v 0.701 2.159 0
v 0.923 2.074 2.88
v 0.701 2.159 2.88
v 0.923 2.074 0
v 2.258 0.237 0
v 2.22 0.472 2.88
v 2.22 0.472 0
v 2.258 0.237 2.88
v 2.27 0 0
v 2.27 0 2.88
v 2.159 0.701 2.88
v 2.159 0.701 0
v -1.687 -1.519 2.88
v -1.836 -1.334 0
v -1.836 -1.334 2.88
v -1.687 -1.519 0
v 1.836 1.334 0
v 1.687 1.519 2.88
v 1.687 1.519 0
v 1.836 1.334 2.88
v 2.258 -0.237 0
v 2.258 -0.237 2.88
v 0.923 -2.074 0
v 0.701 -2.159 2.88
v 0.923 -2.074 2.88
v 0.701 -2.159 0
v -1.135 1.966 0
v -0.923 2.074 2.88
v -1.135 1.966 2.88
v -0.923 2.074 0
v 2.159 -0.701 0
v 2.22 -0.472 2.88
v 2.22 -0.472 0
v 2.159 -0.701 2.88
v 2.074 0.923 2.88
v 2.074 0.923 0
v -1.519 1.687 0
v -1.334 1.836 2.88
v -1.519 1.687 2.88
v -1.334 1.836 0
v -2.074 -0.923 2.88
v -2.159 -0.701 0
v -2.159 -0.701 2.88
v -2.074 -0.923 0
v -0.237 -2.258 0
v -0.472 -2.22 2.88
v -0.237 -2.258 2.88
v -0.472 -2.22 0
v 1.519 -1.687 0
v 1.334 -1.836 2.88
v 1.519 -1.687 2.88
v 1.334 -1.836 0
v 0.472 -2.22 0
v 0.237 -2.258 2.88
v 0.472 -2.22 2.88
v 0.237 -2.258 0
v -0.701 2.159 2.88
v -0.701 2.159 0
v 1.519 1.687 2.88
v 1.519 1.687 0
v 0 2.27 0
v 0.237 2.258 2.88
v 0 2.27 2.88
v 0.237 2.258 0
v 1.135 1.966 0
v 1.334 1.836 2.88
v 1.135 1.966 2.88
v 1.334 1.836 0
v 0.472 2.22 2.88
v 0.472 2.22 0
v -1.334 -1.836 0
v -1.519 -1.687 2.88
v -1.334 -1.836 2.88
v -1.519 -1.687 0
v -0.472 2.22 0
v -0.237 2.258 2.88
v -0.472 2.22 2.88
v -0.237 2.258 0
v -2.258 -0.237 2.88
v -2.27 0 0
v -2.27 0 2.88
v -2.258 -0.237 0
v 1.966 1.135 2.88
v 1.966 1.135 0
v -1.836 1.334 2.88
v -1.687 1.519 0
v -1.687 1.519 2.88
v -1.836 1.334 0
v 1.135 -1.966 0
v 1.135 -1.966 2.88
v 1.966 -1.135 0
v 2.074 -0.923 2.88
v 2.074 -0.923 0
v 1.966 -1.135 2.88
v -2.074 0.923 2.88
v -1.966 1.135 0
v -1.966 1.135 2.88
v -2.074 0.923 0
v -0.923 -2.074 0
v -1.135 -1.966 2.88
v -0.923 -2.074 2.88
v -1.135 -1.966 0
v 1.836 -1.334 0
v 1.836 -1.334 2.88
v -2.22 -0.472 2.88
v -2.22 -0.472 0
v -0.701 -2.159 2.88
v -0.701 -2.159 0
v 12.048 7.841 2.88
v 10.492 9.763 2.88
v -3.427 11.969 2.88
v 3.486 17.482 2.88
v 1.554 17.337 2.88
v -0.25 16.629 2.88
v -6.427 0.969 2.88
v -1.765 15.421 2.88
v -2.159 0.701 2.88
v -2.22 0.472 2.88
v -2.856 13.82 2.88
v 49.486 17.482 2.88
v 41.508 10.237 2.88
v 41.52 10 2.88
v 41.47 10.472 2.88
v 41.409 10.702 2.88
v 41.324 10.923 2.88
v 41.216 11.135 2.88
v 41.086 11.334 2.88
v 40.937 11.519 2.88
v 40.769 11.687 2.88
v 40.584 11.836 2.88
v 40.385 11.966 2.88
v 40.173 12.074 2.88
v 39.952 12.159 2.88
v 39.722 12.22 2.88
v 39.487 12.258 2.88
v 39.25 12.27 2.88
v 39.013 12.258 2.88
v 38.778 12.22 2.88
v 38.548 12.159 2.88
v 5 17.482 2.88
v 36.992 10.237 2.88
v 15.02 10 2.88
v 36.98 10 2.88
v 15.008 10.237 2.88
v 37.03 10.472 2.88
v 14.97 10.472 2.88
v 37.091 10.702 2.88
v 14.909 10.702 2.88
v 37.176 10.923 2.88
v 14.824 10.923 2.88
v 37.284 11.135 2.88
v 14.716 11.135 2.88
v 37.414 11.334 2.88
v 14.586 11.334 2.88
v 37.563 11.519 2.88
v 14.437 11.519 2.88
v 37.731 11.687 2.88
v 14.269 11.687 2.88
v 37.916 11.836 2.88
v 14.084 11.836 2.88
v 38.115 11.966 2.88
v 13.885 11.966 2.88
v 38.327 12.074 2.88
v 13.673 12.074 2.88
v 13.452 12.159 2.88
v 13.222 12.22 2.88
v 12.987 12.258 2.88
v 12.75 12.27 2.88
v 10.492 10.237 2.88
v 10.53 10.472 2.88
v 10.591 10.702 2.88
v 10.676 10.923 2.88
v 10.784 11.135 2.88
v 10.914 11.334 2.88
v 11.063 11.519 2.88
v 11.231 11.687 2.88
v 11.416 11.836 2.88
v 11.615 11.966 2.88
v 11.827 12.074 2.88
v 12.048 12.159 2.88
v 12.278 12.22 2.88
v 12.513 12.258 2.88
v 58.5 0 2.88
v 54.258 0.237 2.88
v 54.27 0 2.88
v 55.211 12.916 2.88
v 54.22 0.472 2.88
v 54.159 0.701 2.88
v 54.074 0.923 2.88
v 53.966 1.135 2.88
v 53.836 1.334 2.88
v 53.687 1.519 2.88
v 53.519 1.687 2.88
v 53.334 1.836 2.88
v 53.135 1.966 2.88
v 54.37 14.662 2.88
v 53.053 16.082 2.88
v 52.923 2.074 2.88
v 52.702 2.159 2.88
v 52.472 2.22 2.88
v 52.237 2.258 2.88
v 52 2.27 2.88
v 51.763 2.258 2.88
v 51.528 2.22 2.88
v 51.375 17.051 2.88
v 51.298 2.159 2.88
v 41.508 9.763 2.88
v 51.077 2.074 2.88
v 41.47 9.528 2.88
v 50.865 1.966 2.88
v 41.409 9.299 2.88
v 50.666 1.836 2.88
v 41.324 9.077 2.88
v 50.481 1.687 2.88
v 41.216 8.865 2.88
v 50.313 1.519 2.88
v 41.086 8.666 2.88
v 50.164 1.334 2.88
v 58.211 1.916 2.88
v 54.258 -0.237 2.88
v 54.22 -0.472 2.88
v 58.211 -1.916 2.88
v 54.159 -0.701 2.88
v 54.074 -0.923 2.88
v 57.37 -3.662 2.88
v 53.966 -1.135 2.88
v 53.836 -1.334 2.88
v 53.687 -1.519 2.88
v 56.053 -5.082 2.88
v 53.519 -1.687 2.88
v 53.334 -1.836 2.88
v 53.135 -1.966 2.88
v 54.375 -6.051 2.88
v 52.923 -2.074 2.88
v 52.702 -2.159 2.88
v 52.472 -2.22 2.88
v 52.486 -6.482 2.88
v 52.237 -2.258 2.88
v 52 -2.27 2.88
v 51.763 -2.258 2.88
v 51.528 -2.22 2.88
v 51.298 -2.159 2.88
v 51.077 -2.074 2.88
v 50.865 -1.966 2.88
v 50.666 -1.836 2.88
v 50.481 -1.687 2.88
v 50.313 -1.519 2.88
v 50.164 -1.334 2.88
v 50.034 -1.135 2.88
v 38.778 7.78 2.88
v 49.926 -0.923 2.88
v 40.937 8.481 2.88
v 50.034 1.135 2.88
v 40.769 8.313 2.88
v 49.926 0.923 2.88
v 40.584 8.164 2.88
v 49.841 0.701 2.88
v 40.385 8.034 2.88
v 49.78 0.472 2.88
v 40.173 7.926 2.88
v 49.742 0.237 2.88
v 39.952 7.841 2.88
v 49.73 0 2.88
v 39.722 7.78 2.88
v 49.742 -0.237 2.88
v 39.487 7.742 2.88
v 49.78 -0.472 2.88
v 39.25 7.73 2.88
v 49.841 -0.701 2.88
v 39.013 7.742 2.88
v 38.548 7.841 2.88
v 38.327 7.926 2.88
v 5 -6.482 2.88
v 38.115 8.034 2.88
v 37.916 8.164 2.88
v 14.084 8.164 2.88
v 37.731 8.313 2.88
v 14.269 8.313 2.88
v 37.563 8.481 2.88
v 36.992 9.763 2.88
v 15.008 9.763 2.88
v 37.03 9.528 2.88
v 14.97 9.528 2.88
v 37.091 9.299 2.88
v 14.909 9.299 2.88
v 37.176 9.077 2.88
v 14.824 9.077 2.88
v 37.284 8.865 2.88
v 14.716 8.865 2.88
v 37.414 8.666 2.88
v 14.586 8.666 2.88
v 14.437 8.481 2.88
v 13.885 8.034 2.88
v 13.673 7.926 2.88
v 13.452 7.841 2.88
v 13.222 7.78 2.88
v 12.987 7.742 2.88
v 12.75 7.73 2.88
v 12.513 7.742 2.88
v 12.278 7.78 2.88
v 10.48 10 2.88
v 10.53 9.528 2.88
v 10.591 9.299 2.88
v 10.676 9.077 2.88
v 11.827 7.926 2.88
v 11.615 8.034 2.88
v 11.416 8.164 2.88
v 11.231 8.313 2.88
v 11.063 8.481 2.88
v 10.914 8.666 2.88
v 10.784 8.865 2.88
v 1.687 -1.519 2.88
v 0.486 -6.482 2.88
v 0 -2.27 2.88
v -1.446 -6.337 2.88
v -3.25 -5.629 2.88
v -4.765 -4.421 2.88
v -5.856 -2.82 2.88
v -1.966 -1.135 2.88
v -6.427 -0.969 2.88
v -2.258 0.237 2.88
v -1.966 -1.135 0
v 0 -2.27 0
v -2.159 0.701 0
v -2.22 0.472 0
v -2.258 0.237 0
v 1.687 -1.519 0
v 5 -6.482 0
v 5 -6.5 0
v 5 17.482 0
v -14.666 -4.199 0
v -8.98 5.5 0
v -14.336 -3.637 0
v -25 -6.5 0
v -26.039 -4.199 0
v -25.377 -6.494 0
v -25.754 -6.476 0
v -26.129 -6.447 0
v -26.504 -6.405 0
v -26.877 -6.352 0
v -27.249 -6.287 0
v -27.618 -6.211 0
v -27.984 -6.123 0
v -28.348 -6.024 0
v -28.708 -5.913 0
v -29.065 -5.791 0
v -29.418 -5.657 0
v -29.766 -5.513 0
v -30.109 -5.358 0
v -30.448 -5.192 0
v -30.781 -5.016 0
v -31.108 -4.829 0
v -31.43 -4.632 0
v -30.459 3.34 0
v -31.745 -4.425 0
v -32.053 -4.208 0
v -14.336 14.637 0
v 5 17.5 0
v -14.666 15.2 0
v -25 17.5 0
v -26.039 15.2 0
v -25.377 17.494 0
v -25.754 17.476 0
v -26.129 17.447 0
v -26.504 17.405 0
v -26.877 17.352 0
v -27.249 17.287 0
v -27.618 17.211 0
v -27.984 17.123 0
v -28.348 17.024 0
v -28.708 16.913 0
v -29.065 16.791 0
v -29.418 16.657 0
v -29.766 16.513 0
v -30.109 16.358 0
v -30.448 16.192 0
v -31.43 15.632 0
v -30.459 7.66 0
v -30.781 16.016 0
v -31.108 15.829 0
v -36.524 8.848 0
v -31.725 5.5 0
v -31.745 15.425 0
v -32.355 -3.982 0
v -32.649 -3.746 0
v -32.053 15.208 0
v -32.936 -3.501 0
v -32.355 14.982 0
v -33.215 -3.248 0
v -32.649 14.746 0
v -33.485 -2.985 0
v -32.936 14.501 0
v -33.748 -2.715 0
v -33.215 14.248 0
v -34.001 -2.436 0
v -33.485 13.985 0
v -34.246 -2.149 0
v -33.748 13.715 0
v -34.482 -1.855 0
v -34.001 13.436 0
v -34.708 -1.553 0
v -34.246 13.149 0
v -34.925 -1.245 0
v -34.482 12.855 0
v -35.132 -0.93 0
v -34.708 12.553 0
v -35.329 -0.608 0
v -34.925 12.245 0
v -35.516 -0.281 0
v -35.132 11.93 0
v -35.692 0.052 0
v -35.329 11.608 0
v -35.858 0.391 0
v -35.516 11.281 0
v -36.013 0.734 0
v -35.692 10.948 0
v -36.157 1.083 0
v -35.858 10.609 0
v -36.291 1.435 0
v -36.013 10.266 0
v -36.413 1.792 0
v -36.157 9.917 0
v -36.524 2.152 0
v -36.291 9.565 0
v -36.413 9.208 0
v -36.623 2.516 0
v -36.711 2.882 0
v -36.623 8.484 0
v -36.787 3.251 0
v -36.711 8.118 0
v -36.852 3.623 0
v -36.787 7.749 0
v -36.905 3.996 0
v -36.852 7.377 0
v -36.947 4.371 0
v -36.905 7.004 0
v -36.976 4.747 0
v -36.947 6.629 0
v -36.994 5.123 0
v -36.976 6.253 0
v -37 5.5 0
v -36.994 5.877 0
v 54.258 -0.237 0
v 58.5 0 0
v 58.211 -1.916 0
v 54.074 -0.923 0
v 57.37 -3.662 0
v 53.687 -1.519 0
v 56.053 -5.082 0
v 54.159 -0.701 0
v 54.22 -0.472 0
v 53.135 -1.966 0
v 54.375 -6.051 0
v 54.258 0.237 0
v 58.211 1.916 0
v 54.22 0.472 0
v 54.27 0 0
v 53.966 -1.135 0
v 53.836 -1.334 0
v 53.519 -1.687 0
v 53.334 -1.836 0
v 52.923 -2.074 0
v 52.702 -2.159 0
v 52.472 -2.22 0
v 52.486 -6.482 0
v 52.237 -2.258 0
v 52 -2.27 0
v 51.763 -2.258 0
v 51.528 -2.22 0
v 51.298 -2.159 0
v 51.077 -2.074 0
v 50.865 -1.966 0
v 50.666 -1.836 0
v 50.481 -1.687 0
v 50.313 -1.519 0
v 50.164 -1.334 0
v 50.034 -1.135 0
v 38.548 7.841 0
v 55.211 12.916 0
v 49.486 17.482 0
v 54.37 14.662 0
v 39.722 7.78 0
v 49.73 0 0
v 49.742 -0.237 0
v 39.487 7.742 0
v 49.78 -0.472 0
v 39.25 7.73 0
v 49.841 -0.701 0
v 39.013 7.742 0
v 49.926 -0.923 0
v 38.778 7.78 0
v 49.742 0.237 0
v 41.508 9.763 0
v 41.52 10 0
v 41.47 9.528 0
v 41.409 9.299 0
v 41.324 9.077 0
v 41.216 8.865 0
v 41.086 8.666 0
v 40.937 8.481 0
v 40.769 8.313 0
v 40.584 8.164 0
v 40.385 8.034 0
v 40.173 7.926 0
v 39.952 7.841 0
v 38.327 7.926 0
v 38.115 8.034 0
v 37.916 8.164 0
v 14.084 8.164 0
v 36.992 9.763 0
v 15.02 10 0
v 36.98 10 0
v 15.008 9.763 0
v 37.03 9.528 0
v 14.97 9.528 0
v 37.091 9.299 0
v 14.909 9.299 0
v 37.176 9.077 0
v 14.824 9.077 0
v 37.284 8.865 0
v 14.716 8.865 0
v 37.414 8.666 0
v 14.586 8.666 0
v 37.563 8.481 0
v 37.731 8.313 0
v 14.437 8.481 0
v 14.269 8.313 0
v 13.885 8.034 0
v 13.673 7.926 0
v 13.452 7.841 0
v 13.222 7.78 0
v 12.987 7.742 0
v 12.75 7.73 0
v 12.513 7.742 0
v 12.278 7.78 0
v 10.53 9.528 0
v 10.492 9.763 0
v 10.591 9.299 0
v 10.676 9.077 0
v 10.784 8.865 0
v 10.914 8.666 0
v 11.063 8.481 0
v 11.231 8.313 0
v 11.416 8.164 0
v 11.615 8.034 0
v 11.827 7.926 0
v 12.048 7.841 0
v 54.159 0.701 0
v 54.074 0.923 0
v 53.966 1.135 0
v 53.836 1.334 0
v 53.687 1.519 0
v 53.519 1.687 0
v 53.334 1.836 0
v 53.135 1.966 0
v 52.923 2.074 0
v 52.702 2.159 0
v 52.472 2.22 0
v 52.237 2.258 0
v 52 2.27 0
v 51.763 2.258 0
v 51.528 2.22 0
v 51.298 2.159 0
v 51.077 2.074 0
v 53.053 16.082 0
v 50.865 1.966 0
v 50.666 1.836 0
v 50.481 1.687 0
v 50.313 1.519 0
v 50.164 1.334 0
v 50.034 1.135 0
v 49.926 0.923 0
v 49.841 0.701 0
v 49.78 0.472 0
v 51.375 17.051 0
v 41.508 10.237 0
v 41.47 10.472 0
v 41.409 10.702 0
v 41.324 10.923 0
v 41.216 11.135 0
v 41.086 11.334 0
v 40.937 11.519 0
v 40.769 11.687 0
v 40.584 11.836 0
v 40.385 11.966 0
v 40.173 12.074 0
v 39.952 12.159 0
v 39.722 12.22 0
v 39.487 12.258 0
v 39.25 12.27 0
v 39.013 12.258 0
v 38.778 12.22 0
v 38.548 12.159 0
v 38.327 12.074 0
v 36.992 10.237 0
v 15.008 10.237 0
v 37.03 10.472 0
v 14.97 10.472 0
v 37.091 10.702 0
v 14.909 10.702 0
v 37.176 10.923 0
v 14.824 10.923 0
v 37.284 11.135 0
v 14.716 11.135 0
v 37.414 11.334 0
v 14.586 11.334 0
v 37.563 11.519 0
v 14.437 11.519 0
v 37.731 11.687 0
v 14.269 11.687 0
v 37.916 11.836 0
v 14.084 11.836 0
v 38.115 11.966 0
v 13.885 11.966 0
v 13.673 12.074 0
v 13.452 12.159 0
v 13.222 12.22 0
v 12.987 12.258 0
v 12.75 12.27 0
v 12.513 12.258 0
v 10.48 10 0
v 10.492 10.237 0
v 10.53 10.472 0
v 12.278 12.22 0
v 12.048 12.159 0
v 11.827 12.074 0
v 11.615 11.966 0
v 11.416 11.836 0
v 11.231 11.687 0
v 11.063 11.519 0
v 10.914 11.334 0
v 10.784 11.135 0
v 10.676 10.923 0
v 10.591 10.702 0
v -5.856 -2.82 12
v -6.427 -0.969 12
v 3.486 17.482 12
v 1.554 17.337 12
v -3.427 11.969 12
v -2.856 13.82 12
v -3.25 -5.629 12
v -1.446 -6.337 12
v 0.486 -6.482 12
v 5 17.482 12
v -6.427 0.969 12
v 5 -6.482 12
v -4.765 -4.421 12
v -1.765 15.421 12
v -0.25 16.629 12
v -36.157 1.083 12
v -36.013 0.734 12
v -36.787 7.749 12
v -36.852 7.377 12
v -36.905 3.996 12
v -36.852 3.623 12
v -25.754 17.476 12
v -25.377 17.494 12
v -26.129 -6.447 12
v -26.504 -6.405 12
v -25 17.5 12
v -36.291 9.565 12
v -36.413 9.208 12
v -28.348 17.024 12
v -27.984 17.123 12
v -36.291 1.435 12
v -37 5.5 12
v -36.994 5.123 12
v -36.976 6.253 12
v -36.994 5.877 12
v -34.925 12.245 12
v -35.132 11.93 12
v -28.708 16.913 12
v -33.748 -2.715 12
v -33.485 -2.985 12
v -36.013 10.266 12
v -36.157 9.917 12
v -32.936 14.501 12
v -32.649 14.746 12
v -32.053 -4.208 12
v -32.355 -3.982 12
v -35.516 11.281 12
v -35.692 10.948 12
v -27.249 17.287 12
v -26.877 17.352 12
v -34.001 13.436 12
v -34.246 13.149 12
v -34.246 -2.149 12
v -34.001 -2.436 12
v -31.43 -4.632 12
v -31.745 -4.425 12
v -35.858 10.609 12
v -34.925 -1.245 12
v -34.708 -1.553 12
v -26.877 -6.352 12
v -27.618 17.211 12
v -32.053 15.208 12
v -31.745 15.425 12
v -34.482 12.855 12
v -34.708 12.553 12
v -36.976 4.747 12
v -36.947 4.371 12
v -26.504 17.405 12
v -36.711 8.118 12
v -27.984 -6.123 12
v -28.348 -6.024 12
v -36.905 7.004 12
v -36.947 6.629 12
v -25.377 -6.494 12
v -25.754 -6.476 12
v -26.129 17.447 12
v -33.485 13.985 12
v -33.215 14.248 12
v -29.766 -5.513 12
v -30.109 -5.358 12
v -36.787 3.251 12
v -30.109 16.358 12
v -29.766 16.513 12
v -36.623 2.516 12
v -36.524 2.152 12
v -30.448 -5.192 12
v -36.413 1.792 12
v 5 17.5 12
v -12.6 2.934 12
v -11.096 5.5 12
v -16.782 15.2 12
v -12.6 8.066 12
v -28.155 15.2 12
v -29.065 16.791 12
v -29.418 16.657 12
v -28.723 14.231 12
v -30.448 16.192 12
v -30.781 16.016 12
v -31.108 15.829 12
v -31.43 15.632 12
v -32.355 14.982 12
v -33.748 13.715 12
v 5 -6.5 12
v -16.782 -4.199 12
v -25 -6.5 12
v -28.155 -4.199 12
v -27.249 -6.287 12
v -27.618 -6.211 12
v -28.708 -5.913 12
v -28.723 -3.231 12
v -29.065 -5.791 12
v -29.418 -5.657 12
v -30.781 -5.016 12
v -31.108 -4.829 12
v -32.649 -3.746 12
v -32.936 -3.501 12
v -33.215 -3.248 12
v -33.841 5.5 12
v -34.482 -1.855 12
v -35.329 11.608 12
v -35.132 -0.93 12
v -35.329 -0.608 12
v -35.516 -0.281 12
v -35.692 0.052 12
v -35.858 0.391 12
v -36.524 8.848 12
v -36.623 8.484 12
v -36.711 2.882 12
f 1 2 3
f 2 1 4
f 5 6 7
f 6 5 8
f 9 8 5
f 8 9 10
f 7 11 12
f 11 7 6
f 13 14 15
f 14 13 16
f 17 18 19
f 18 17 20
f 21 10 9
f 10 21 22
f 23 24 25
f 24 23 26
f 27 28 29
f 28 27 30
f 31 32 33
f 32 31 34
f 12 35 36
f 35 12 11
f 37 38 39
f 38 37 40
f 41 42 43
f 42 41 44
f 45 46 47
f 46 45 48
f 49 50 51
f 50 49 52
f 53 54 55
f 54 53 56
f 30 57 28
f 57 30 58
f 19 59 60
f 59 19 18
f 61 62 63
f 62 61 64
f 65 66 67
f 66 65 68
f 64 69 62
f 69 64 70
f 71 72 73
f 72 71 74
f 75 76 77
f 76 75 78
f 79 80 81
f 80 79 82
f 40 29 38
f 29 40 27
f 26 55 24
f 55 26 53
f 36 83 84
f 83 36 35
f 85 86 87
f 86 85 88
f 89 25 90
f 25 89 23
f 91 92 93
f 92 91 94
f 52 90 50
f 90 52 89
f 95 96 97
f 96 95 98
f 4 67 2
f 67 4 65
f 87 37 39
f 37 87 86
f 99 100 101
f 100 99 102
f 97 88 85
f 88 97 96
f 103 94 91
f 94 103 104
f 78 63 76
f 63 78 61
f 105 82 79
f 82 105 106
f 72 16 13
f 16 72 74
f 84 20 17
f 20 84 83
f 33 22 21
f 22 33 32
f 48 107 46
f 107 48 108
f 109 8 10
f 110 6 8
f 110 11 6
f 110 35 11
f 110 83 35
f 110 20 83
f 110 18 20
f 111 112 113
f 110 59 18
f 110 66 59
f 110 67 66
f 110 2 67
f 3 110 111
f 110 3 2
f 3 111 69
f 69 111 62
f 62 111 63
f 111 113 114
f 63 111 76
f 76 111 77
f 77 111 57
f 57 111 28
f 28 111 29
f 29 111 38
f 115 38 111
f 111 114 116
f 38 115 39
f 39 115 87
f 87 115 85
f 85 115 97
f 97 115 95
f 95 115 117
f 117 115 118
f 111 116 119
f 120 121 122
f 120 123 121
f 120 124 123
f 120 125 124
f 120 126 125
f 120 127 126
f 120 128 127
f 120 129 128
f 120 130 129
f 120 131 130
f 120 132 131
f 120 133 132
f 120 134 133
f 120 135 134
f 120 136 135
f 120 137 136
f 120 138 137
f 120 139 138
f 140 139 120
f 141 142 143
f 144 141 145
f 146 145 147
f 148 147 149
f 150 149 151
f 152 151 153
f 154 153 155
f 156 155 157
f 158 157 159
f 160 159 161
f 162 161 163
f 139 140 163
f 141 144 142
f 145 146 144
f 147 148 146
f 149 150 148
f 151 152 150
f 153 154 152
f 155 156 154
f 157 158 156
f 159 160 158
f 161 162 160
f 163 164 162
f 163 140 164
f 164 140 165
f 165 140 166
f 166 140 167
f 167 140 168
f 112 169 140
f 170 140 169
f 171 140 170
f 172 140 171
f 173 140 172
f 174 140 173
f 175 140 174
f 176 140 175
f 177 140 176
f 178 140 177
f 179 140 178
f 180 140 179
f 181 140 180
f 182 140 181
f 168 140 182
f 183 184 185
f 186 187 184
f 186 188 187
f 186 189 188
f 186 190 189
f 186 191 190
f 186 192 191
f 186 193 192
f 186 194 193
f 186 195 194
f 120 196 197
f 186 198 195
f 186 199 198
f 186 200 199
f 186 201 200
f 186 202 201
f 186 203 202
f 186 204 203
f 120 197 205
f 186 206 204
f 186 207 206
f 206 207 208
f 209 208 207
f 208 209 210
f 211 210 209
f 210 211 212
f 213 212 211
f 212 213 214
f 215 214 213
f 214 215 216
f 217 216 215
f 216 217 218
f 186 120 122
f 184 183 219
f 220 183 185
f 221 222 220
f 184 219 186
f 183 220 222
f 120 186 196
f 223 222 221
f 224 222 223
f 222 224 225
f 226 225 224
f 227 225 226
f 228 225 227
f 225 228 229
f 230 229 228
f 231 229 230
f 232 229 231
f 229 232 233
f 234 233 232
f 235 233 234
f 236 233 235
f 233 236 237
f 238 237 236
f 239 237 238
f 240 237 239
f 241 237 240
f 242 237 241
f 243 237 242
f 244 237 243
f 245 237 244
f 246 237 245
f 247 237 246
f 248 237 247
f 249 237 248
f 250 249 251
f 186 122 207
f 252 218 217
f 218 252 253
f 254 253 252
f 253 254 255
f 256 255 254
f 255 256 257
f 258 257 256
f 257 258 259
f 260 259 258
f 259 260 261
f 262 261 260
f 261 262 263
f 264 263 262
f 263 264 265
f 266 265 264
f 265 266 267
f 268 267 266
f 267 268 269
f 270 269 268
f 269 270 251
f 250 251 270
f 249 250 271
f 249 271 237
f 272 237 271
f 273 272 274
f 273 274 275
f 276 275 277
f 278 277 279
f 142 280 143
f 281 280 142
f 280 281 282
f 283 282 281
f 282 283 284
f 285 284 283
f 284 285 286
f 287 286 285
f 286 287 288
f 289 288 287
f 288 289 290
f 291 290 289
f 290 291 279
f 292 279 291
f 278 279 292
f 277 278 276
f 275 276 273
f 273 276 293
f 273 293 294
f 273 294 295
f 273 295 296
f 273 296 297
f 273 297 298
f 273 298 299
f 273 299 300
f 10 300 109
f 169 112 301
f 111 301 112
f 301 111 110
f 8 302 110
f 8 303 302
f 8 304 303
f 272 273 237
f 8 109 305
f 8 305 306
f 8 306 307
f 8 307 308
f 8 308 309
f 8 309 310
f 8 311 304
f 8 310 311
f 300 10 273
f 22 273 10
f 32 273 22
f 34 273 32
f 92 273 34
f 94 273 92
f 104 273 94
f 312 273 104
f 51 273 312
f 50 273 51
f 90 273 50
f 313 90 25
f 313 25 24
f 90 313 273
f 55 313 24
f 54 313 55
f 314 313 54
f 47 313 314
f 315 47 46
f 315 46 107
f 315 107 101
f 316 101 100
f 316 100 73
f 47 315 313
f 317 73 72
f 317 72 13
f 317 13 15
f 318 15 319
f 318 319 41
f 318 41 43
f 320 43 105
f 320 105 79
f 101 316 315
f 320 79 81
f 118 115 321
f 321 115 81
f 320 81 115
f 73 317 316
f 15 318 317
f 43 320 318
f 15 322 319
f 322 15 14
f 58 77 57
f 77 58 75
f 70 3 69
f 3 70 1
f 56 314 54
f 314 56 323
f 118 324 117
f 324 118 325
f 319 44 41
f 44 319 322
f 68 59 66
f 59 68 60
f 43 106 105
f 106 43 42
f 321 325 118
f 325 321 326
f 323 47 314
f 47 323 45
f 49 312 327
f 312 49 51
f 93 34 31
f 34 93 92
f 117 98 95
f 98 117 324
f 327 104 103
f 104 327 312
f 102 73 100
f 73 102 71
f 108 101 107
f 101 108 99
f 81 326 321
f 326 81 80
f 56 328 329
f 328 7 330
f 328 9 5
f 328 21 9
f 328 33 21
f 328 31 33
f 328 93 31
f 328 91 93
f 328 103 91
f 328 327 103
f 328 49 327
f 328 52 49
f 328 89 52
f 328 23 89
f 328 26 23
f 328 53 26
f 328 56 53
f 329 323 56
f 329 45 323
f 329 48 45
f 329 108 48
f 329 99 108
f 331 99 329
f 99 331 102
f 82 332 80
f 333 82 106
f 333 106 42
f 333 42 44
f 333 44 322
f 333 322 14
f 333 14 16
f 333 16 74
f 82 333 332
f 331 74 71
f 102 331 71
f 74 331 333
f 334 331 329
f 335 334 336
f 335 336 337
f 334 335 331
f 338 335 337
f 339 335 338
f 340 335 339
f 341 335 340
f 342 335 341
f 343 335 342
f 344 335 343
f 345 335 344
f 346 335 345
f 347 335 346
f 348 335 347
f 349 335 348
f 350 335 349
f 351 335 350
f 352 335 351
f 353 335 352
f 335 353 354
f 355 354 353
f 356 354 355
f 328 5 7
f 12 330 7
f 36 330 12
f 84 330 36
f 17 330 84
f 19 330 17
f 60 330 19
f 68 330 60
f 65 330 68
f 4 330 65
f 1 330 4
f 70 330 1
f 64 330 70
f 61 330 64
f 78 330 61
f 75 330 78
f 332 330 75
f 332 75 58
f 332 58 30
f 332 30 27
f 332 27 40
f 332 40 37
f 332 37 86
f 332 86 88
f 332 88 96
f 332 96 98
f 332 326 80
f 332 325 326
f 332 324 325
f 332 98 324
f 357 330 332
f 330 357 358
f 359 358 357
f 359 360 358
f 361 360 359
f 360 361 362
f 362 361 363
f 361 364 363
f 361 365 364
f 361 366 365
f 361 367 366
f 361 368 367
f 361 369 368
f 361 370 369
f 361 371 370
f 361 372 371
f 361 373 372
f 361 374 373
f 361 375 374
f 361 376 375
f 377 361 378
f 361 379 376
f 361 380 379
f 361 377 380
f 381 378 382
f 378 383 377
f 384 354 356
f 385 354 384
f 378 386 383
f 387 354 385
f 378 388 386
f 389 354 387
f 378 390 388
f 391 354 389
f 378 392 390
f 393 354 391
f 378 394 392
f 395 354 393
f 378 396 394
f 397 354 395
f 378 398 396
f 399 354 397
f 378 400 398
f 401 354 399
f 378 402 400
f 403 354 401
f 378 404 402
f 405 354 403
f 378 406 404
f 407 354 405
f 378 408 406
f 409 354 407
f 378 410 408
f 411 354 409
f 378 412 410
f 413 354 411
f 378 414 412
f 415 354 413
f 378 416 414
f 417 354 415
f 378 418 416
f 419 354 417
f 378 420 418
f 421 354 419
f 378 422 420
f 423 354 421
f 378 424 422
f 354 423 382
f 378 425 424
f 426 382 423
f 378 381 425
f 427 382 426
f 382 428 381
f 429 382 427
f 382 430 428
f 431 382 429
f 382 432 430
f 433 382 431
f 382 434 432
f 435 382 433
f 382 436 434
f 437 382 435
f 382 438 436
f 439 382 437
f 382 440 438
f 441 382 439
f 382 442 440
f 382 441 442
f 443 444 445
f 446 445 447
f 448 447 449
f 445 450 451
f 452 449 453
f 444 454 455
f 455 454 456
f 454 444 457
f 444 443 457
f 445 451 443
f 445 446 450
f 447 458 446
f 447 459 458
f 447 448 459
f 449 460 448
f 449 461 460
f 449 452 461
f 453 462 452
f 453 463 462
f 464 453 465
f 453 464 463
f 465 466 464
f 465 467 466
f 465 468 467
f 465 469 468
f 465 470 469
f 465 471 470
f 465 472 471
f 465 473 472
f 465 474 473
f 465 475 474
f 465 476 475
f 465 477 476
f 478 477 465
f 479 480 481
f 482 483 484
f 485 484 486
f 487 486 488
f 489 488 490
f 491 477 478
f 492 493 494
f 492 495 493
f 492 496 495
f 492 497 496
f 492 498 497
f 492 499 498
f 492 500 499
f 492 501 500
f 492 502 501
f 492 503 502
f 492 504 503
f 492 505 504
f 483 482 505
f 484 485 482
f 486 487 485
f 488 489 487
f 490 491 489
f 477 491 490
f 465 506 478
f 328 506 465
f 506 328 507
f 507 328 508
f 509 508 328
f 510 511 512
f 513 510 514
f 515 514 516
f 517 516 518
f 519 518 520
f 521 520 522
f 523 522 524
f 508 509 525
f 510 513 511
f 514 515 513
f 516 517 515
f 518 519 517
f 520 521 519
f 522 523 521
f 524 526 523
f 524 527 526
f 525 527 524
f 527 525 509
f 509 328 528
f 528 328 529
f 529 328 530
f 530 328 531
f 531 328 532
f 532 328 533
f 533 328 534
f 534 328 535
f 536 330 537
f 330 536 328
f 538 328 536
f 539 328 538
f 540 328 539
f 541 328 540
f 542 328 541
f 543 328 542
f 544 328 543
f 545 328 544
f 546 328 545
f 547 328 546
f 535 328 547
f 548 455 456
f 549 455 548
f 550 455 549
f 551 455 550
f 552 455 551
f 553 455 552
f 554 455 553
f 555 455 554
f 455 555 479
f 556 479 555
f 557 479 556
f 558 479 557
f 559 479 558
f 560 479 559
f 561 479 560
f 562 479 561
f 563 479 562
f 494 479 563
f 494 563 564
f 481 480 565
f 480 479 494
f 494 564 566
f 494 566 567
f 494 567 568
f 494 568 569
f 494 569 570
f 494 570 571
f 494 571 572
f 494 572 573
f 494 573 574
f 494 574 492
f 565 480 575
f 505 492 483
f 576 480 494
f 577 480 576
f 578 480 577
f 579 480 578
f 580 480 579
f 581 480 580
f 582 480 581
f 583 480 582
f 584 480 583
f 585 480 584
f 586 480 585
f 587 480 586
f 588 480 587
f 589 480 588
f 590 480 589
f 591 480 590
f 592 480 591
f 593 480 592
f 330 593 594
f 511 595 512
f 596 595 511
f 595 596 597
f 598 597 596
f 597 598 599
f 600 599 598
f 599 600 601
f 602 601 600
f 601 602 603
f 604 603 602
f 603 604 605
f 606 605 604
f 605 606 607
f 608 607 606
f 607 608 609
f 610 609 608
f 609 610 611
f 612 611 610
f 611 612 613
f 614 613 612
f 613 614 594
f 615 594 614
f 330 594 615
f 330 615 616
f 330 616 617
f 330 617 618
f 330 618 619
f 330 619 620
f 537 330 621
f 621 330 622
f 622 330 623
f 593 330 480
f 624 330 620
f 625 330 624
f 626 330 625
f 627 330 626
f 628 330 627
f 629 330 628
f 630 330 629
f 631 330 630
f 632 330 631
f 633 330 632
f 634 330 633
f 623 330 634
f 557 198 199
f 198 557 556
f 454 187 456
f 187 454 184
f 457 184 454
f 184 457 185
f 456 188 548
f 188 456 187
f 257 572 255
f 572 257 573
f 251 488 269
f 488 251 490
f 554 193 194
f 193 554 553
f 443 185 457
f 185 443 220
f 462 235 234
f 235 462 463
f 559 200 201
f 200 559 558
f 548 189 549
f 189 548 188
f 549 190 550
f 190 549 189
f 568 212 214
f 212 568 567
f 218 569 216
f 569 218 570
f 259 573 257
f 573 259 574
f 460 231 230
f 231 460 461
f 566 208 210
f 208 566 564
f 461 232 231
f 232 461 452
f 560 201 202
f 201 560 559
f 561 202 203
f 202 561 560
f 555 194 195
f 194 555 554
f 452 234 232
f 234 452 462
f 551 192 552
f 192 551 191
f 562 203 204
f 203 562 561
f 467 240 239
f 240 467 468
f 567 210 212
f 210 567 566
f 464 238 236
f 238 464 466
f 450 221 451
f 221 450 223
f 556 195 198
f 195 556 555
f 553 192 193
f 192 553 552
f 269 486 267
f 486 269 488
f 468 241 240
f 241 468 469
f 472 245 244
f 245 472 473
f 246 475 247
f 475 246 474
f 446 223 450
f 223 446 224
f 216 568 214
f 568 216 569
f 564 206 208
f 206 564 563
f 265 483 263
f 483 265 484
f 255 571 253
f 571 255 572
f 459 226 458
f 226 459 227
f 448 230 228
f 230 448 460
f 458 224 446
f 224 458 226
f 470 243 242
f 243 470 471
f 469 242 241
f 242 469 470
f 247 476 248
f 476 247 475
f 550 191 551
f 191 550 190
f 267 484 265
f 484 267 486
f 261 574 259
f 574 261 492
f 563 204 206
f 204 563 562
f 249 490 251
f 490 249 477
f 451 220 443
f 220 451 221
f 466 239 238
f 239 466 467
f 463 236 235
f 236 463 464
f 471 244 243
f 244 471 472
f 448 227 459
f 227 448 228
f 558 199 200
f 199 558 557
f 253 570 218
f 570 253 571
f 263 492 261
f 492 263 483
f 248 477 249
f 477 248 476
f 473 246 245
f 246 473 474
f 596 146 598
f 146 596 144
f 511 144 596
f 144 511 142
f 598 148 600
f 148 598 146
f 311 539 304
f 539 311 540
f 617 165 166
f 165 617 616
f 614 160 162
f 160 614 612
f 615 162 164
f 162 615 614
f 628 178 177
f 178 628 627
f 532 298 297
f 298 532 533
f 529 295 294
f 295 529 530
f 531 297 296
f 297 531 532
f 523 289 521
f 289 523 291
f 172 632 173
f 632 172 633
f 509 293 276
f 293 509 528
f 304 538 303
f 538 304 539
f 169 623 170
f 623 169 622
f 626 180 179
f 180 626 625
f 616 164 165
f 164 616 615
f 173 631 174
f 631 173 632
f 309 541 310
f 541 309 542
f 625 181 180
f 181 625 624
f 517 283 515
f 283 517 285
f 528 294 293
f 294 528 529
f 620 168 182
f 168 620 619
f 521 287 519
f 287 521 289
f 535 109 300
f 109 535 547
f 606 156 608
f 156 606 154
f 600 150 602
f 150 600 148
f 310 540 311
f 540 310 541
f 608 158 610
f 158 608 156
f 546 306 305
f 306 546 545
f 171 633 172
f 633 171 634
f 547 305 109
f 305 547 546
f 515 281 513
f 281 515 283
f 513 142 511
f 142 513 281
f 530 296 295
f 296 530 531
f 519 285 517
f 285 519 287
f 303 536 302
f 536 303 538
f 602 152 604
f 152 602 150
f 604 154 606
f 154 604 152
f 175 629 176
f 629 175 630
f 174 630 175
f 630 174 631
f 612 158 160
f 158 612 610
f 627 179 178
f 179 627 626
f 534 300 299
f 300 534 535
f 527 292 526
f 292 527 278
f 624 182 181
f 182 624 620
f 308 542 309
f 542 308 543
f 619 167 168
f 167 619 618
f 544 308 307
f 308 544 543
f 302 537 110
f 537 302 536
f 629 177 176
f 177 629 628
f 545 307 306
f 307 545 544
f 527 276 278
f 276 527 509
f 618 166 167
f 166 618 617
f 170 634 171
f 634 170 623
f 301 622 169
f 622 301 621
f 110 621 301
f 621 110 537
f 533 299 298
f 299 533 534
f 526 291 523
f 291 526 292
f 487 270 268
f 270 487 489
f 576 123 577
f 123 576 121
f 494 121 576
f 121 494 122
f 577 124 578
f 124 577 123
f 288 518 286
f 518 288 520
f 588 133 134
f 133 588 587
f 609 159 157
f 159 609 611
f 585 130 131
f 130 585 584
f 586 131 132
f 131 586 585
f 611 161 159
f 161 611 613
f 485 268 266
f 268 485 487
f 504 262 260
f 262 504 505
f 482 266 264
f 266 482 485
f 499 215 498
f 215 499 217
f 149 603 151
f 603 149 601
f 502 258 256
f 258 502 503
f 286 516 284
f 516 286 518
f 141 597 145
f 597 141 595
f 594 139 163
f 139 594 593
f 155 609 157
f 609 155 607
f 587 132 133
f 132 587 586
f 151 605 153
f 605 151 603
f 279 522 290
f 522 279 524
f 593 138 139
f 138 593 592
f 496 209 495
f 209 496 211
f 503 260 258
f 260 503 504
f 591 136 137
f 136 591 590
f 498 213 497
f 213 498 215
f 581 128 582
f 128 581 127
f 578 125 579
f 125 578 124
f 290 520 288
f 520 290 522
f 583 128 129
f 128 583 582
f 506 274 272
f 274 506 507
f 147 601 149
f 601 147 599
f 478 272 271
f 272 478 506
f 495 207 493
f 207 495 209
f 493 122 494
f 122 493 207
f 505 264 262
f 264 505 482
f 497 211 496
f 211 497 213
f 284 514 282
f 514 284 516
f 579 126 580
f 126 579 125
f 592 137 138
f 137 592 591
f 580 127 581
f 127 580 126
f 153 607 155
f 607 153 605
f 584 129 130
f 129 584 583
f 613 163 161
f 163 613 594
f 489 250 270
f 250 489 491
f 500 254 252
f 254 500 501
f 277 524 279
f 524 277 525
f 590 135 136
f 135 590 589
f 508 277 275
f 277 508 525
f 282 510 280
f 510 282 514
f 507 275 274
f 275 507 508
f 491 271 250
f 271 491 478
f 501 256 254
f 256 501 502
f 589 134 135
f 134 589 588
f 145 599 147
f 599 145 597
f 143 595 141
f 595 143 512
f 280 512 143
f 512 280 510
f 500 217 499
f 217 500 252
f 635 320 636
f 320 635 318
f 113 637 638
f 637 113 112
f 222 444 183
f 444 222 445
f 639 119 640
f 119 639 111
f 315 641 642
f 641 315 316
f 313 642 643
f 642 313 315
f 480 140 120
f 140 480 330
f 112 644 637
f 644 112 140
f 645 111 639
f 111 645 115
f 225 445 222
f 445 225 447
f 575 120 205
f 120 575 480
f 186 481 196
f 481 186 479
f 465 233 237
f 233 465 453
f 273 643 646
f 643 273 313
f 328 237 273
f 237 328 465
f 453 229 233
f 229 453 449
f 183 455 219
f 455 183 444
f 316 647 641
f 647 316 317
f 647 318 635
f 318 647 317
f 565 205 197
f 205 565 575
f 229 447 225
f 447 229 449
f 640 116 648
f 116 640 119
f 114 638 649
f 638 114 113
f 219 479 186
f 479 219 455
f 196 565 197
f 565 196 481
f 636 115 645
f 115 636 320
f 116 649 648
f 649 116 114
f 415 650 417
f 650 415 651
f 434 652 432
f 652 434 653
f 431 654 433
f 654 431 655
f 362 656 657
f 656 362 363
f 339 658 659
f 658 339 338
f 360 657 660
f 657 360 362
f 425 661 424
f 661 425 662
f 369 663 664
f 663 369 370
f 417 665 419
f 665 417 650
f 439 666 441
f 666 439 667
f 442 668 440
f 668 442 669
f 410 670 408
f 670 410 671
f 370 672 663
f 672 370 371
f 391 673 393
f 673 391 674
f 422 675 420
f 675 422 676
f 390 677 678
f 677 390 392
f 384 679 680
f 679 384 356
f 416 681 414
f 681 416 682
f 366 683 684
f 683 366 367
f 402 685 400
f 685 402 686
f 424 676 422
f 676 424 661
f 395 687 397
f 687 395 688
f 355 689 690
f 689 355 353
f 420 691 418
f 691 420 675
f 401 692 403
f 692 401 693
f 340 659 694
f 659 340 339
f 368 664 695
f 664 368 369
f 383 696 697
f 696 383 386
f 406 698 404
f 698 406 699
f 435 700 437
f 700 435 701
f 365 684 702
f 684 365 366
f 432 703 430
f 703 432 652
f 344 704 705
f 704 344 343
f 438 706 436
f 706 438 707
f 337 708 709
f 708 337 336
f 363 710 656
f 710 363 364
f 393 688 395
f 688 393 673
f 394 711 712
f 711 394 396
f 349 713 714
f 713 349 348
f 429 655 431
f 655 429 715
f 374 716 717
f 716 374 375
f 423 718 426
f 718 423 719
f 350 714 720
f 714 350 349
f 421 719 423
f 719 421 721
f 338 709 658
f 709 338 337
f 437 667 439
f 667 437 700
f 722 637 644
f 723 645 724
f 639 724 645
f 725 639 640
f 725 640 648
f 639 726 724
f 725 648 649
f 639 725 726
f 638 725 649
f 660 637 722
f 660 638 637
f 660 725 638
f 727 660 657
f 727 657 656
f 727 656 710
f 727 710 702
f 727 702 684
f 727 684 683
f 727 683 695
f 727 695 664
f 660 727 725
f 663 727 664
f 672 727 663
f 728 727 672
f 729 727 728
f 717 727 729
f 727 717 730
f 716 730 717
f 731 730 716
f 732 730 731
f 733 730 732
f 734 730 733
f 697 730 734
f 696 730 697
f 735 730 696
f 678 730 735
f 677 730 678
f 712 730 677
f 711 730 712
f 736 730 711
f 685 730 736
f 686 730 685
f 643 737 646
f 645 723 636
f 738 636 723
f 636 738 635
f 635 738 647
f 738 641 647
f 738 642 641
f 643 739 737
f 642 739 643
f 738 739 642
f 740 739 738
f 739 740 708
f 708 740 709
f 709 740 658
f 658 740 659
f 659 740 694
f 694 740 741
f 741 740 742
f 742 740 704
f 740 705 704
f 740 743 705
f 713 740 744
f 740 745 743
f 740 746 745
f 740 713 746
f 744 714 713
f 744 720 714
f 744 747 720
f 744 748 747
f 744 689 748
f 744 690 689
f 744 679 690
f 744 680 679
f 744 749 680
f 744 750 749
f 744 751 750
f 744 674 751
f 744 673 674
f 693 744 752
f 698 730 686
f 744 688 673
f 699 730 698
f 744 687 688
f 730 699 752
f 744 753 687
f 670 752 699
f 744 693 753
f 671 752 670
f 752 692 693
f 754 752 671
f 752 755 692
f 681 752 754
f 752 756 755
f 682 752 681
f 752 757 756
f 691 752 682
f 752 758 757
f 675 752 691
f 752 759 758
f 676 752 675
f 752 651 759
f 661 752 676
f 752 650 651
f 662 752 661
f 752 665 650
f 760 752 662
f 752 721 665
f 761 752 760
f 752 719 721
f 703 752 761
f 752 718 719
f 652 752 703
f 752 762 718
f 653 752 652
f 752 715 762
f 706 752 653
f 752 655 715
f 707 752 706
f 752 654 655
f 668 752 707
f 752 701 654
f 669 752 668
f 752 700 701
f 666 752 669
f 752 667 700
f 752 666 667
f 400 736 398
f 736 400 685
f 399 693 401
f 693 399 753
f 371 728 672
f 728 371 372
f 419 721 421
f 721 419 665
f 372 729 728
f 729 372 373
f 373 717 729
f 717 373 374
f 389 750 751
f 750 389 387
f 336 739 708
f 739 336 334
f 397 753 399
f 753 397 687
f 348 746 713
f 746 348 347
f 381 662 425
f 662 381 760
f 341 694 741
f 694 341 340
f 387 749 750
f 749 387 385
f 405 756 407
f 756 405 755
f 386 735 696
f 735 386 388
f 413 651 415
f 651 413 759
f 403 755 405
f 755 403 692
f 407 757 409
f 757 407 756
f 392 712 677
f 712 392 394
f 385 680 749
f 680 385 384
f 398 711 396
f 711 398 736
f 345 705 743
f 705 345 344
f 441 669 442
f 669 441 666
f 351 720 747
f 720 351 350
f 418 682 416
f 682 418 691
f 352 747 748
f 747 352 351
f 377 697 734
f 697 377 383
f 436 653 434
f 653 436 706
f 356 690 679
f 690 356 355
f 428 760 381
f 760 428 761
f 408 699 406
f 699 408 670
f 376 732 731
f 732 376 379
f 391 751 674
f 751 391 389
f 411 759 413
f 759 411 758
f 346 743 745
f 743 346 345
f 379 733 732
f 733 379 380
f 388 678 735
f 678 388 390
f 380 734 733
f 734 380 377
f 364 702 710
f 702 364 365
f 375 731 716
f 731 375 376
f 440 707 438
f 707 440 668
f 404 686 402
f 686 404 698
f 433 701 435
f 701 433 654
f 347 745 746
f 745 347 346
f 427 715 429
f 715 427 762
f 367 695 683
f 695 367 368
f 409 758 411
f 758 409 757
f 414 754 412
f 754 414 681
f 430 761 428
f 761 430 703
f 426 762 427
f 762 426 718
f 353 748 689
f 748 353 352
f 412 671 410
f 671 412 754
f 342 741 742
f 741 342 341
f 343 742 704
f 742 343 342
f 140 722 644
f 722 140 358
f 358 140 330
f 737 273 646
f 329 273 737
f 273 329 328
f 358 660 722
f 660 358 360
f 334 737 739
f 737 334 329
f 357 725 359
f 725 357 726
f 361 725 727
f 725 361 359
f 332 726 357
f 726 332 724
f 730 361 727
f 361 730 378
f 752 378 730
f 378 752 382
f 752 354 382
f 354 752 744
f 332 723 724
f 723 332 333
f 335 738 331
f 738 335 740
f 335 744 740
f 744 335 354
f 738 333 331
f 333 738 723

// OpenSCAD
_xLatch=65;
_yLatch=22.8;
_zLatch=2.88;
//_zLatch=0.64;

_xHoleGapLarge=52;
_xHoleGapSmall=26.5;
_yHoleGap=10;
_yHoleEdgeOffset=6;
_holeDiameter=4.54;

//_nutDiameter=22;
_nutDiameter=22.4; // accounting for hole shrinkage
_mountAngle=10;
_slotHeight=12;

filletRadius=6.5;
trapezoidInset=3;
trapezoidReferenceY=11;

/* minkowski() { */
/*     cube([65-6,22.8-6,2.88]); */
/*     cylinder(h=2.88, r=6); */
/* }; */

module latch_bracket(x=_xLatch, y=_yLatch, z=_zLatch, rh=_holeDiameter/2, xgL=_xHoleGapLarge, xgS=_xHoleGapSmall, yg=_yHoleGap, yo=_yHoleEdgeOffset, rf=filletRadius, ti=trapezoidInset, ty=trapezoidReferenceY, dn=_nutDiameter, ma=_mountAngle, hs=_slotHeight) {
    module basePlate(z=z) {
        module referenceTrapezoid() {
            polygon([
                [0, 0],
                [xgL, 0],
                [xgL-ti, ty],
                [ti, ty]
            ]);
        };
        linear_extrude(height=z) {
            minkowski() {
                circle(r=rf);
                referenceTrapezoid();
            };
        };
    };
    module holes(fn=60) {
        nearOffset=(xgL-xgS)/2;
        farOffset=xgL-nearOffset;
        cylinder(h=z, r=rh, $fn=fn);
        translate([xgL,0]) cylinder(h=z, r=rh, $fn=fn);
        translate([nearOffset,yg]) cylinder(h=z, r=rh, $fn=fn);
        translate([farOffset,yg]) cylinder(h=z, r=rh, $fn=fn);
    };
    module nutSlot(h=hs, x=30) {
        slotY=ty+rf*2;
        slotX=x;
        nutOffset=5;
        module slot(fn=80) {
            translate([-slotX/2,0])
                cylinder(d=slotY, h=h, $fn=fn);
            translate([0,0,h/2])
                cube([slotX, slotY, h], center=true);
        };
        module nut(tilt=-ma) {
            rotate([0,tilt,0]) 
                cylinder(h=h+5, r=dn/2, $fn=6); //h+5 kasi angled ang nut so kailangan patangkarin upang ma-cut ang buong lalim ng slot
        };
        translate([-10,ty/2]) // 10mm shifted up
        difference() {
            slot(fn=200);
            translate([-slotX/2+nutOffset,0,-2]) nut();
        }
    };
    //nutSlot(h=5, x=17);
    difference() {
        //translate([0,ys/2,0])
            nutSlot();
        basePlate(z=hs);
    };
    difference() {
        basePlate();
        holes();
    };
};

latch_bracket();
